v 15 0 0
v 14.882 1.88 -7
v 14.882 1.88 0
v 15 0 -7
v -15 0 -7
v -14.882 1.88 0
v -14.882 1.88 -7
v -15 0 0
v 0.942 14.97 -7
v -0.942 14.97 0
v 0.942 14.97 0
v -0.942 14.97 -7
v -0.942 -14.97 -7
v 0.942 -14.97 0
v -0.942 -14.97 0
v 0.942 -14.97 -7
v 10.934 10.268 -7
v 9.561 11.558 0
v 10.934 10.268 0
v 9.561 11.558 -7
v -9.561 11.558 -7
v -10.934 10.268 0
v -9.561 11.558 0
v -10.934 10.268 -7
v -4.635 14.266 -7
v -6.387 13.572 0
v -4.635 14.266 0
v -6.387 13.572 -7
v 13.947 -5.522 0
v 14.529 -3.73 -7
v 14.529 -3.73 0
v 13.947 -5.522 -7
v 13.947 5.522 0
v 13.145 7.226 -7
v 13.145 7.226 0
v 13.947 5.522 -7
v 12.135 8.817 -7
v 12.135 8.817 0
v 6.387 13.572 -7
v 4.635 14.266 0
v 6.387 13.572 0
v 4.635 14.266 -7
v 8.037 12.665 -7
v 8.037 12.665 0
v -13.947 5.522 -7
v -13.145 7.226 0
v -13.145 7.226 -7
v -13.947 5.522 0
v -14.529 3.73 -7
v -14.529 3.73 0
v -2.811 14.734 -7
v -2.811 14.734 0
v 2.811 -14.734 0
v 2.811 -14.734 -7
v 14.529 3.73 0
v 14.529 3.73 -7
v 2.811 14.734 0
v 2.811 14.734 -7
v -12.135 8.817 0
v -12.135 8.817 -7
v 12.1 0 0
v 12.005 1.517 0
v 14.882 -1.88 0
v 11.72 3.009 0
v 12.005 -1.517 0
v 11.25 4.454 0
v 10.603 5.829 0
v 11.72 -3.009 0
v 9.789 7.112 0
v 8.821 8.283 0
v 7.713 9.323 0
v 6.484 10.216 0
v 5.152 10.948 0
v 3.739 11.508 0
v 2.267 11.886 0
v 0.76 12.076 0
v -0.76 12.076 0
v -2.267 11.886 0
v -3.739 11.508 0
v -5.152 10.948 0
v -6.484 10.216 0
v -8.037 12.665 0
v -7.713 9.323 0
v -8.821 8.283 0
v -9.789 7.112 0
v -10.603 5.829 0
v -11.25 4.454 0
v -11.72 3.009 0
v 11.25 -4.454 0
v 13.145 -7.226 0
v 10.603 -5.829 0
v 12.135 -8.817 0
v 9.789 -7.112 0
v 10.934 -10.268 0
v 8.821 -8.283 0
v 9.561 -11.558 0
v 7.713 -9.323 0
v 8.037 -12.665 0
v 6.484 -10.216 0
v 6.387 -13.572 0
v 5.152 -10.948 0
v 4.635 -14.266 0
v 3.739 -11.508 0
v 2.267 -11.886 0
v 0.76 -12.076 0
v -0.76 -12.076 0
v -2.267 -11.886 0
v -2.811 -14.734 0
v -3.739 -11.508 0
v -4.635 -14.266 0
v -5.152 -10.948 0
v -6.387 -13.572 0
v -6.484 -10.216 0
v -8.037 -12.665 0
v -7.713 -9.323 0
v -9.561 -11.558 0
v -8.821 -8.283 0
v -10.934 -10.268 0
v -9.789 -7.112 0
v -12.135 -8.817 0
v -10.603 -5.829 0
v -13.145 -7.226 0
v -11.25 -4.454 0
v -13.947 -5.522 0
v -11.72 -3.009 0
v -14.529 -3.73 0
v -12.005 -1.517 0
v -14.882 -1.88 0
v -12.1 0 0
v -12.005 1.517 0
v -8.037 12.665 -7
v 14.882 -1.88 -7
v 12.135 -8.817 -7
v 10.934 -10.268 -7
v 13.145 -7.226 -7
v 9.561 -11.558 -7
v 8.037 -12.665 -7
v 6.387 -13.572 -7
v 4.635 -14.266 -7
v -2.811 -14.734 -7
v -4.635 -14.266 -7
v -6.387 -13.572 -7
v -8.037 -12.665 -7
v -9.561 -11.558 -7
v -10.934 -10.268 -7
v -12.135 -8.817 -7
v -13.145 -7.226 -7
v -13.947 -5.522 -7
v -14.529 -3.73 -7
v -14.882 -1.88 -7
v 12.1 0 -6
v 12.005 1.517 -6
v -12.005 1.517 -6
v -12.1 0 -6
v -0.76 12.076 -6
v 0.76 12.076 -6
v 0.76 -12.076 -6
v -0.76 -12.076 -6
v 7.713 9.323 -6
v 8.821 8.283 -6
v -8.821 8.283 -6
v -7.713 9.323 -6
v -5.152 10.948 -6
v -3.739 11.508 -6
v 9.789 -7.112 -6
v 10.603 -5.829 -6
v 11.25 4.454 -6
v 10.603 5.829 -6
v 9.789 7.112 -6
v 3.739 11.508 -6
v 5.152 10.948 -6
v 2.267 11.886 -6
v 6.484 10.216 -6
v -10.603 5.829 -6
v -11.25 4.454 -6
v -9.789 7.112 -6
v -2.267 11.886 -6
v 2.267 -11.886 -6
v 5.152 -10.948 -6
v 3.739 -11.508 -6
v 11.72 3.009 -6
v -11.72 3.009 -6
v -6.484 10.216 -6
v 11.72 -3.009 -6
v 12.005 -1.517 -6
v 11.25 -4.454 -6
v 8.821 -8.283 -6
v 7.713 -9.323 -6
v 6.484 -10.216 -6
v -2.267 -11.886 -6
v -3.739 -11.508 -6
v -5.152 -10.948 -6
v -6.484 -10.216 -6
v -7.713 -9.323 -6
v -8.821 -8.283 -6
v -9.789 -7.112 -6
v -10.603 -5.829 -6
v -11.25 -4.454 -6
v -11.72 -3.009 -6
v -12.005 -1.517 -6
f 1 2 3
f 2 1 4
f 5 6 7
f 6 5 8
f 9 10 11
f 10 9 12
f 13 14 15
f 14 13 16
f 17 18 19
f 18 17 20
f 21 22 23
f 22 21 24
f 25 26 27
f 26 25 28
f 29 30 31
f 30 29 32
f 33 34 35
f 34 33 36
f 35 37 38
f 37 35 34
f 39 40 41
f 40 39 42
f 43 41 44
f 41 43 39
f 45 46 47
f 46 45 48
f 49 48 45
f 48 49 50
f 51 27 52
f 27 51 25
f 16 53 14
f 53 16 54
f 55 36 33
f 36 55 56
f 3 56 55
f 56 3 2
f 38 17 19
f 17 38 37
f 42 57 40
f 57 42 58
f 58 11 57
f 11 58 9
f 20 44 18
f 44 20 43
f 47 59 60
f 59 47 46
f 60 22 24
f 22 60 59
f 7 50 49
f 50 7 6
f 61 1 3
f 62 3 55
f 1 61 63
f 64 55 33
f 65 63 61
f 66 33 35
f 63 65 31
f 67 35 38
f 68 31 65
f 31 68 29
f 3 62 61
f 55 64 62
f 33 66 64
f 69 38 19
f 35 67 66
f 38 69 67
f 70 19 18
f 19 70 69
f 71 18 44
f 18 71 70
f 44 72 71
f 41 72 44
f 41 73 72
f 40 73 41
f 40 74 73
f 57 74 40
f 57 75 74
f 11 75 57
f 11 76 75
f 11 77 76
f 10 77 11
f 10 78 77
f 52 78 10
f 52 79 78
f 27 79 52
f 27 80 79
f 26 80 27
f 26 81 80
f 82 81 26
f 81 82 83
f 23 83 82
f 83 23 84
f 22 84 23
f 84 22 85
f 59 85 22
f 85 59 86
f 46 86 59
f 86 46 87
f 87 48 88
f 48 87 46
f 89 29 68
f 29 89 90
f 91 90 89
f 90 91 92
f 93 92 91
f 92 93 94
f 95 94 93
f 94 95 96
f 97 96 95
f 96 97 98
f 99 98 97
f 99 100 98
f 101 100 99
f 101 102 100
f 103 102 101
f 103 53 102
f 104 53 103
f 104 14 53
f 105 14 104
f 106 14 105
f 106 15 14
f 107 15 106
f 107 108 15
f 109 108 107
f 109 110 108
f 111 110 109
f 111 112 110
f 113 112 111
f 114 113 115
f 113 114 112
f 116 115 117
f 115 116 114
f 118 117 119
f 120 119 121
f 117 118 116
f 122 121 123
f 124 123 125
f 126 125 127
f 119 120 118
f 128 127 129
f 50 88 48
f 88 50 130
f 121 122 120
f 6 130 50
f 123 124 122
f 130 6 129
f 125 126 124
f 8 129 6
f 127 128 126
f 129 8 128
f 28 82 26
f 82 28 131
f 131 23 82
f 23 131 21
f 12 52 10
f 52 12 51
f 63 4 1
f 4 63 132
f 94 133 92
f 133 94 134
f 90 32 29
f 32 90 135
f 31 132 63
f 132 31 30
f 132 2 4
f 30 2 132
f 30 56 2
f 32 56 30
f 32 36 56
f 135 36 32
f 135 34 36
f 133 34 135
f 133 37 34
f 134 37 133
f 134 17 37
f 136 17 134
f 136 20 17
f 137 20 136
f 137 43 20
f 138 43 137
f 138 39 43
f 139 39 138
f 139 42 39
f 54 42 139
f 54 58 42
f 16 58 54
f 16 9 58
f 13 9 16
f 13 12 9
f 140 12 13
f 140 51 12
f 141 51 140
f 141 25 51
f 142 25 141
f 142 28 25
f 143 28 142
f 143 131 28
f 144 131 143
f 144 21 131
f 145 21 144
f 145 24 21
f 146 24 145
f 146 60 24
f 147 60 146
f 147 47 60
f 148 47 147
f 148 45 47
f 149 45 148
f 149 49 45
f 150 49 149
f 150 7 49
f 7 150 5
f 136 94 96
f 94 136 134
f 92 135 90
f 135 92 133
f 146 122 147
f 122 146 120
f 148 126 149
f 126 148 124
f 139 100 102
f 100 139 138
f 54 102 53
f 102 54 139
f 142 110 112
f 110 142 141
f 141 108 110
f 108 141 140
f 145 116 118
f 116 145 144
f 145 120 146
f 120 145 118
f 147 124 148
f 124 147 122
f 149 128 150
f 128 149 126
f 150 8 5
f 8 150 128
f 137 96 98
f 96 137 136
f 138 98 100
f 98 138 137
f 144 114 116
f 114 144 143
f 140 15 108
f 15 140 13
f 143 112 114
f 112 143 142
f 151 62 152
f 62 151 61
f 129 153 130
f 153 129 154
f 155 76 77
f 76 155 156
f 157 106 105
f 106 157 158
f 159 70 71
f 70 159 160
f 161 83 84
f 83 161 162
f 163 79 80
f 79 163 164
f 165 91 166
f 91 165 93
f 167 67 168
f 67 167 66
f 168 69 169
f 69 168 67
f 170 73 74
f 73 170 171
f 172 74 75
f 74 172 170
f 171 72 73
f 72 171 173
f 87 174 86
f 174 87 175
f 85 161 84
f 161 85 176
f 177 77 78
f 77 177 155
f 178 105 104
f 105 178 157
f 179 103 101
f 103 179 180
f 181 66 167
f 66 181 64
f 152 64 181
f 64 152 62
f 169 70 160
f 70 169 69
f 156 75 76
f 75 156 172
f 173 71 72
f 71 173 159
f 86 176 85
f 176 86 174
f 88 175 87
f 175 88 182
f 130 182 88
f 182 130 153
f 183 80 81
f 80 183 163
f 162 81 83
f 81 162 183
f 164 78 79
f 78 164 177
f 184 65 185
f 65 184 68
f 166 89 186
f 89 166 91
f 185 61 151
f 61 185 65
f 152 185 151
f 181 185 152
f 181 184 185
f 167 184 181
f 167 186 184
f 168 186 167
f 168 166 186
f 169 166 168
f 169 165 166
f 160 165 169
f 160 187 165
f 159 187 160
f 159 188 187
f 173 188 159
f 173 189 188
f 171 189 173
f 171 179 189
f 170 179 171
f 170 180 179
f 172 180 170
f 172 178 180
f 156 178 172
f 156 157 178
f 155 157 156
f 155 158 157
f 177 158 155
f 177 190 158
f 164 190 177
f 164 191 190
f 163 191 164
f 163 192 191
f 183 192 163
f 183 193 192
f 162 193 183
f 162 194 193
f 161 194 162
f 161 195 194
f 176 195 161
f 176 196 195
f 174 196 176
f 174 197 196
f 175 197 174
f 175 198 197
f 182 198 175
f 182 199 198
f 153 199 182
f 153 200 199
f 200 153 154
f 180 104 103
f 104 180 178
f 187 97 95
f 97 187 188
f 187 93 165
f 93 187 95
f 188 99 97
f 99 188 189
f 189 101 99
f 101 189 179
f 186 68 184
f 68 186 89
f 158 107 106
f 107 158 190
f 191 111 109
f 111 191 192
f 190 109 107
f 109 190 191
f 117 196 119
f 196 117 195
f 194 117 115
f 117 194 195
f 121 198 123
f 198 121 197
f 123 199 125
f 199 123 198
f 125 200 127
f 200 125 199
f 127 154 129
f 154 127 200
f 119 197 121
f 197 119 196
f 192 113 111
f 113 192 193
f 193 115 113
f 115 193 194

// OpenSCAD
$fn = 50;


difference() {
	union() {
		translate(v = [0, 0, -7.0000000000]) {
			cylinder(h = 7, r = 15.0000000000);
		}
	}
	union() {
		#translate(v = [0, 0, -6.0000000000]) {
			cylinder(h = 6, r = 12.1000000000);
		}
	}
}
